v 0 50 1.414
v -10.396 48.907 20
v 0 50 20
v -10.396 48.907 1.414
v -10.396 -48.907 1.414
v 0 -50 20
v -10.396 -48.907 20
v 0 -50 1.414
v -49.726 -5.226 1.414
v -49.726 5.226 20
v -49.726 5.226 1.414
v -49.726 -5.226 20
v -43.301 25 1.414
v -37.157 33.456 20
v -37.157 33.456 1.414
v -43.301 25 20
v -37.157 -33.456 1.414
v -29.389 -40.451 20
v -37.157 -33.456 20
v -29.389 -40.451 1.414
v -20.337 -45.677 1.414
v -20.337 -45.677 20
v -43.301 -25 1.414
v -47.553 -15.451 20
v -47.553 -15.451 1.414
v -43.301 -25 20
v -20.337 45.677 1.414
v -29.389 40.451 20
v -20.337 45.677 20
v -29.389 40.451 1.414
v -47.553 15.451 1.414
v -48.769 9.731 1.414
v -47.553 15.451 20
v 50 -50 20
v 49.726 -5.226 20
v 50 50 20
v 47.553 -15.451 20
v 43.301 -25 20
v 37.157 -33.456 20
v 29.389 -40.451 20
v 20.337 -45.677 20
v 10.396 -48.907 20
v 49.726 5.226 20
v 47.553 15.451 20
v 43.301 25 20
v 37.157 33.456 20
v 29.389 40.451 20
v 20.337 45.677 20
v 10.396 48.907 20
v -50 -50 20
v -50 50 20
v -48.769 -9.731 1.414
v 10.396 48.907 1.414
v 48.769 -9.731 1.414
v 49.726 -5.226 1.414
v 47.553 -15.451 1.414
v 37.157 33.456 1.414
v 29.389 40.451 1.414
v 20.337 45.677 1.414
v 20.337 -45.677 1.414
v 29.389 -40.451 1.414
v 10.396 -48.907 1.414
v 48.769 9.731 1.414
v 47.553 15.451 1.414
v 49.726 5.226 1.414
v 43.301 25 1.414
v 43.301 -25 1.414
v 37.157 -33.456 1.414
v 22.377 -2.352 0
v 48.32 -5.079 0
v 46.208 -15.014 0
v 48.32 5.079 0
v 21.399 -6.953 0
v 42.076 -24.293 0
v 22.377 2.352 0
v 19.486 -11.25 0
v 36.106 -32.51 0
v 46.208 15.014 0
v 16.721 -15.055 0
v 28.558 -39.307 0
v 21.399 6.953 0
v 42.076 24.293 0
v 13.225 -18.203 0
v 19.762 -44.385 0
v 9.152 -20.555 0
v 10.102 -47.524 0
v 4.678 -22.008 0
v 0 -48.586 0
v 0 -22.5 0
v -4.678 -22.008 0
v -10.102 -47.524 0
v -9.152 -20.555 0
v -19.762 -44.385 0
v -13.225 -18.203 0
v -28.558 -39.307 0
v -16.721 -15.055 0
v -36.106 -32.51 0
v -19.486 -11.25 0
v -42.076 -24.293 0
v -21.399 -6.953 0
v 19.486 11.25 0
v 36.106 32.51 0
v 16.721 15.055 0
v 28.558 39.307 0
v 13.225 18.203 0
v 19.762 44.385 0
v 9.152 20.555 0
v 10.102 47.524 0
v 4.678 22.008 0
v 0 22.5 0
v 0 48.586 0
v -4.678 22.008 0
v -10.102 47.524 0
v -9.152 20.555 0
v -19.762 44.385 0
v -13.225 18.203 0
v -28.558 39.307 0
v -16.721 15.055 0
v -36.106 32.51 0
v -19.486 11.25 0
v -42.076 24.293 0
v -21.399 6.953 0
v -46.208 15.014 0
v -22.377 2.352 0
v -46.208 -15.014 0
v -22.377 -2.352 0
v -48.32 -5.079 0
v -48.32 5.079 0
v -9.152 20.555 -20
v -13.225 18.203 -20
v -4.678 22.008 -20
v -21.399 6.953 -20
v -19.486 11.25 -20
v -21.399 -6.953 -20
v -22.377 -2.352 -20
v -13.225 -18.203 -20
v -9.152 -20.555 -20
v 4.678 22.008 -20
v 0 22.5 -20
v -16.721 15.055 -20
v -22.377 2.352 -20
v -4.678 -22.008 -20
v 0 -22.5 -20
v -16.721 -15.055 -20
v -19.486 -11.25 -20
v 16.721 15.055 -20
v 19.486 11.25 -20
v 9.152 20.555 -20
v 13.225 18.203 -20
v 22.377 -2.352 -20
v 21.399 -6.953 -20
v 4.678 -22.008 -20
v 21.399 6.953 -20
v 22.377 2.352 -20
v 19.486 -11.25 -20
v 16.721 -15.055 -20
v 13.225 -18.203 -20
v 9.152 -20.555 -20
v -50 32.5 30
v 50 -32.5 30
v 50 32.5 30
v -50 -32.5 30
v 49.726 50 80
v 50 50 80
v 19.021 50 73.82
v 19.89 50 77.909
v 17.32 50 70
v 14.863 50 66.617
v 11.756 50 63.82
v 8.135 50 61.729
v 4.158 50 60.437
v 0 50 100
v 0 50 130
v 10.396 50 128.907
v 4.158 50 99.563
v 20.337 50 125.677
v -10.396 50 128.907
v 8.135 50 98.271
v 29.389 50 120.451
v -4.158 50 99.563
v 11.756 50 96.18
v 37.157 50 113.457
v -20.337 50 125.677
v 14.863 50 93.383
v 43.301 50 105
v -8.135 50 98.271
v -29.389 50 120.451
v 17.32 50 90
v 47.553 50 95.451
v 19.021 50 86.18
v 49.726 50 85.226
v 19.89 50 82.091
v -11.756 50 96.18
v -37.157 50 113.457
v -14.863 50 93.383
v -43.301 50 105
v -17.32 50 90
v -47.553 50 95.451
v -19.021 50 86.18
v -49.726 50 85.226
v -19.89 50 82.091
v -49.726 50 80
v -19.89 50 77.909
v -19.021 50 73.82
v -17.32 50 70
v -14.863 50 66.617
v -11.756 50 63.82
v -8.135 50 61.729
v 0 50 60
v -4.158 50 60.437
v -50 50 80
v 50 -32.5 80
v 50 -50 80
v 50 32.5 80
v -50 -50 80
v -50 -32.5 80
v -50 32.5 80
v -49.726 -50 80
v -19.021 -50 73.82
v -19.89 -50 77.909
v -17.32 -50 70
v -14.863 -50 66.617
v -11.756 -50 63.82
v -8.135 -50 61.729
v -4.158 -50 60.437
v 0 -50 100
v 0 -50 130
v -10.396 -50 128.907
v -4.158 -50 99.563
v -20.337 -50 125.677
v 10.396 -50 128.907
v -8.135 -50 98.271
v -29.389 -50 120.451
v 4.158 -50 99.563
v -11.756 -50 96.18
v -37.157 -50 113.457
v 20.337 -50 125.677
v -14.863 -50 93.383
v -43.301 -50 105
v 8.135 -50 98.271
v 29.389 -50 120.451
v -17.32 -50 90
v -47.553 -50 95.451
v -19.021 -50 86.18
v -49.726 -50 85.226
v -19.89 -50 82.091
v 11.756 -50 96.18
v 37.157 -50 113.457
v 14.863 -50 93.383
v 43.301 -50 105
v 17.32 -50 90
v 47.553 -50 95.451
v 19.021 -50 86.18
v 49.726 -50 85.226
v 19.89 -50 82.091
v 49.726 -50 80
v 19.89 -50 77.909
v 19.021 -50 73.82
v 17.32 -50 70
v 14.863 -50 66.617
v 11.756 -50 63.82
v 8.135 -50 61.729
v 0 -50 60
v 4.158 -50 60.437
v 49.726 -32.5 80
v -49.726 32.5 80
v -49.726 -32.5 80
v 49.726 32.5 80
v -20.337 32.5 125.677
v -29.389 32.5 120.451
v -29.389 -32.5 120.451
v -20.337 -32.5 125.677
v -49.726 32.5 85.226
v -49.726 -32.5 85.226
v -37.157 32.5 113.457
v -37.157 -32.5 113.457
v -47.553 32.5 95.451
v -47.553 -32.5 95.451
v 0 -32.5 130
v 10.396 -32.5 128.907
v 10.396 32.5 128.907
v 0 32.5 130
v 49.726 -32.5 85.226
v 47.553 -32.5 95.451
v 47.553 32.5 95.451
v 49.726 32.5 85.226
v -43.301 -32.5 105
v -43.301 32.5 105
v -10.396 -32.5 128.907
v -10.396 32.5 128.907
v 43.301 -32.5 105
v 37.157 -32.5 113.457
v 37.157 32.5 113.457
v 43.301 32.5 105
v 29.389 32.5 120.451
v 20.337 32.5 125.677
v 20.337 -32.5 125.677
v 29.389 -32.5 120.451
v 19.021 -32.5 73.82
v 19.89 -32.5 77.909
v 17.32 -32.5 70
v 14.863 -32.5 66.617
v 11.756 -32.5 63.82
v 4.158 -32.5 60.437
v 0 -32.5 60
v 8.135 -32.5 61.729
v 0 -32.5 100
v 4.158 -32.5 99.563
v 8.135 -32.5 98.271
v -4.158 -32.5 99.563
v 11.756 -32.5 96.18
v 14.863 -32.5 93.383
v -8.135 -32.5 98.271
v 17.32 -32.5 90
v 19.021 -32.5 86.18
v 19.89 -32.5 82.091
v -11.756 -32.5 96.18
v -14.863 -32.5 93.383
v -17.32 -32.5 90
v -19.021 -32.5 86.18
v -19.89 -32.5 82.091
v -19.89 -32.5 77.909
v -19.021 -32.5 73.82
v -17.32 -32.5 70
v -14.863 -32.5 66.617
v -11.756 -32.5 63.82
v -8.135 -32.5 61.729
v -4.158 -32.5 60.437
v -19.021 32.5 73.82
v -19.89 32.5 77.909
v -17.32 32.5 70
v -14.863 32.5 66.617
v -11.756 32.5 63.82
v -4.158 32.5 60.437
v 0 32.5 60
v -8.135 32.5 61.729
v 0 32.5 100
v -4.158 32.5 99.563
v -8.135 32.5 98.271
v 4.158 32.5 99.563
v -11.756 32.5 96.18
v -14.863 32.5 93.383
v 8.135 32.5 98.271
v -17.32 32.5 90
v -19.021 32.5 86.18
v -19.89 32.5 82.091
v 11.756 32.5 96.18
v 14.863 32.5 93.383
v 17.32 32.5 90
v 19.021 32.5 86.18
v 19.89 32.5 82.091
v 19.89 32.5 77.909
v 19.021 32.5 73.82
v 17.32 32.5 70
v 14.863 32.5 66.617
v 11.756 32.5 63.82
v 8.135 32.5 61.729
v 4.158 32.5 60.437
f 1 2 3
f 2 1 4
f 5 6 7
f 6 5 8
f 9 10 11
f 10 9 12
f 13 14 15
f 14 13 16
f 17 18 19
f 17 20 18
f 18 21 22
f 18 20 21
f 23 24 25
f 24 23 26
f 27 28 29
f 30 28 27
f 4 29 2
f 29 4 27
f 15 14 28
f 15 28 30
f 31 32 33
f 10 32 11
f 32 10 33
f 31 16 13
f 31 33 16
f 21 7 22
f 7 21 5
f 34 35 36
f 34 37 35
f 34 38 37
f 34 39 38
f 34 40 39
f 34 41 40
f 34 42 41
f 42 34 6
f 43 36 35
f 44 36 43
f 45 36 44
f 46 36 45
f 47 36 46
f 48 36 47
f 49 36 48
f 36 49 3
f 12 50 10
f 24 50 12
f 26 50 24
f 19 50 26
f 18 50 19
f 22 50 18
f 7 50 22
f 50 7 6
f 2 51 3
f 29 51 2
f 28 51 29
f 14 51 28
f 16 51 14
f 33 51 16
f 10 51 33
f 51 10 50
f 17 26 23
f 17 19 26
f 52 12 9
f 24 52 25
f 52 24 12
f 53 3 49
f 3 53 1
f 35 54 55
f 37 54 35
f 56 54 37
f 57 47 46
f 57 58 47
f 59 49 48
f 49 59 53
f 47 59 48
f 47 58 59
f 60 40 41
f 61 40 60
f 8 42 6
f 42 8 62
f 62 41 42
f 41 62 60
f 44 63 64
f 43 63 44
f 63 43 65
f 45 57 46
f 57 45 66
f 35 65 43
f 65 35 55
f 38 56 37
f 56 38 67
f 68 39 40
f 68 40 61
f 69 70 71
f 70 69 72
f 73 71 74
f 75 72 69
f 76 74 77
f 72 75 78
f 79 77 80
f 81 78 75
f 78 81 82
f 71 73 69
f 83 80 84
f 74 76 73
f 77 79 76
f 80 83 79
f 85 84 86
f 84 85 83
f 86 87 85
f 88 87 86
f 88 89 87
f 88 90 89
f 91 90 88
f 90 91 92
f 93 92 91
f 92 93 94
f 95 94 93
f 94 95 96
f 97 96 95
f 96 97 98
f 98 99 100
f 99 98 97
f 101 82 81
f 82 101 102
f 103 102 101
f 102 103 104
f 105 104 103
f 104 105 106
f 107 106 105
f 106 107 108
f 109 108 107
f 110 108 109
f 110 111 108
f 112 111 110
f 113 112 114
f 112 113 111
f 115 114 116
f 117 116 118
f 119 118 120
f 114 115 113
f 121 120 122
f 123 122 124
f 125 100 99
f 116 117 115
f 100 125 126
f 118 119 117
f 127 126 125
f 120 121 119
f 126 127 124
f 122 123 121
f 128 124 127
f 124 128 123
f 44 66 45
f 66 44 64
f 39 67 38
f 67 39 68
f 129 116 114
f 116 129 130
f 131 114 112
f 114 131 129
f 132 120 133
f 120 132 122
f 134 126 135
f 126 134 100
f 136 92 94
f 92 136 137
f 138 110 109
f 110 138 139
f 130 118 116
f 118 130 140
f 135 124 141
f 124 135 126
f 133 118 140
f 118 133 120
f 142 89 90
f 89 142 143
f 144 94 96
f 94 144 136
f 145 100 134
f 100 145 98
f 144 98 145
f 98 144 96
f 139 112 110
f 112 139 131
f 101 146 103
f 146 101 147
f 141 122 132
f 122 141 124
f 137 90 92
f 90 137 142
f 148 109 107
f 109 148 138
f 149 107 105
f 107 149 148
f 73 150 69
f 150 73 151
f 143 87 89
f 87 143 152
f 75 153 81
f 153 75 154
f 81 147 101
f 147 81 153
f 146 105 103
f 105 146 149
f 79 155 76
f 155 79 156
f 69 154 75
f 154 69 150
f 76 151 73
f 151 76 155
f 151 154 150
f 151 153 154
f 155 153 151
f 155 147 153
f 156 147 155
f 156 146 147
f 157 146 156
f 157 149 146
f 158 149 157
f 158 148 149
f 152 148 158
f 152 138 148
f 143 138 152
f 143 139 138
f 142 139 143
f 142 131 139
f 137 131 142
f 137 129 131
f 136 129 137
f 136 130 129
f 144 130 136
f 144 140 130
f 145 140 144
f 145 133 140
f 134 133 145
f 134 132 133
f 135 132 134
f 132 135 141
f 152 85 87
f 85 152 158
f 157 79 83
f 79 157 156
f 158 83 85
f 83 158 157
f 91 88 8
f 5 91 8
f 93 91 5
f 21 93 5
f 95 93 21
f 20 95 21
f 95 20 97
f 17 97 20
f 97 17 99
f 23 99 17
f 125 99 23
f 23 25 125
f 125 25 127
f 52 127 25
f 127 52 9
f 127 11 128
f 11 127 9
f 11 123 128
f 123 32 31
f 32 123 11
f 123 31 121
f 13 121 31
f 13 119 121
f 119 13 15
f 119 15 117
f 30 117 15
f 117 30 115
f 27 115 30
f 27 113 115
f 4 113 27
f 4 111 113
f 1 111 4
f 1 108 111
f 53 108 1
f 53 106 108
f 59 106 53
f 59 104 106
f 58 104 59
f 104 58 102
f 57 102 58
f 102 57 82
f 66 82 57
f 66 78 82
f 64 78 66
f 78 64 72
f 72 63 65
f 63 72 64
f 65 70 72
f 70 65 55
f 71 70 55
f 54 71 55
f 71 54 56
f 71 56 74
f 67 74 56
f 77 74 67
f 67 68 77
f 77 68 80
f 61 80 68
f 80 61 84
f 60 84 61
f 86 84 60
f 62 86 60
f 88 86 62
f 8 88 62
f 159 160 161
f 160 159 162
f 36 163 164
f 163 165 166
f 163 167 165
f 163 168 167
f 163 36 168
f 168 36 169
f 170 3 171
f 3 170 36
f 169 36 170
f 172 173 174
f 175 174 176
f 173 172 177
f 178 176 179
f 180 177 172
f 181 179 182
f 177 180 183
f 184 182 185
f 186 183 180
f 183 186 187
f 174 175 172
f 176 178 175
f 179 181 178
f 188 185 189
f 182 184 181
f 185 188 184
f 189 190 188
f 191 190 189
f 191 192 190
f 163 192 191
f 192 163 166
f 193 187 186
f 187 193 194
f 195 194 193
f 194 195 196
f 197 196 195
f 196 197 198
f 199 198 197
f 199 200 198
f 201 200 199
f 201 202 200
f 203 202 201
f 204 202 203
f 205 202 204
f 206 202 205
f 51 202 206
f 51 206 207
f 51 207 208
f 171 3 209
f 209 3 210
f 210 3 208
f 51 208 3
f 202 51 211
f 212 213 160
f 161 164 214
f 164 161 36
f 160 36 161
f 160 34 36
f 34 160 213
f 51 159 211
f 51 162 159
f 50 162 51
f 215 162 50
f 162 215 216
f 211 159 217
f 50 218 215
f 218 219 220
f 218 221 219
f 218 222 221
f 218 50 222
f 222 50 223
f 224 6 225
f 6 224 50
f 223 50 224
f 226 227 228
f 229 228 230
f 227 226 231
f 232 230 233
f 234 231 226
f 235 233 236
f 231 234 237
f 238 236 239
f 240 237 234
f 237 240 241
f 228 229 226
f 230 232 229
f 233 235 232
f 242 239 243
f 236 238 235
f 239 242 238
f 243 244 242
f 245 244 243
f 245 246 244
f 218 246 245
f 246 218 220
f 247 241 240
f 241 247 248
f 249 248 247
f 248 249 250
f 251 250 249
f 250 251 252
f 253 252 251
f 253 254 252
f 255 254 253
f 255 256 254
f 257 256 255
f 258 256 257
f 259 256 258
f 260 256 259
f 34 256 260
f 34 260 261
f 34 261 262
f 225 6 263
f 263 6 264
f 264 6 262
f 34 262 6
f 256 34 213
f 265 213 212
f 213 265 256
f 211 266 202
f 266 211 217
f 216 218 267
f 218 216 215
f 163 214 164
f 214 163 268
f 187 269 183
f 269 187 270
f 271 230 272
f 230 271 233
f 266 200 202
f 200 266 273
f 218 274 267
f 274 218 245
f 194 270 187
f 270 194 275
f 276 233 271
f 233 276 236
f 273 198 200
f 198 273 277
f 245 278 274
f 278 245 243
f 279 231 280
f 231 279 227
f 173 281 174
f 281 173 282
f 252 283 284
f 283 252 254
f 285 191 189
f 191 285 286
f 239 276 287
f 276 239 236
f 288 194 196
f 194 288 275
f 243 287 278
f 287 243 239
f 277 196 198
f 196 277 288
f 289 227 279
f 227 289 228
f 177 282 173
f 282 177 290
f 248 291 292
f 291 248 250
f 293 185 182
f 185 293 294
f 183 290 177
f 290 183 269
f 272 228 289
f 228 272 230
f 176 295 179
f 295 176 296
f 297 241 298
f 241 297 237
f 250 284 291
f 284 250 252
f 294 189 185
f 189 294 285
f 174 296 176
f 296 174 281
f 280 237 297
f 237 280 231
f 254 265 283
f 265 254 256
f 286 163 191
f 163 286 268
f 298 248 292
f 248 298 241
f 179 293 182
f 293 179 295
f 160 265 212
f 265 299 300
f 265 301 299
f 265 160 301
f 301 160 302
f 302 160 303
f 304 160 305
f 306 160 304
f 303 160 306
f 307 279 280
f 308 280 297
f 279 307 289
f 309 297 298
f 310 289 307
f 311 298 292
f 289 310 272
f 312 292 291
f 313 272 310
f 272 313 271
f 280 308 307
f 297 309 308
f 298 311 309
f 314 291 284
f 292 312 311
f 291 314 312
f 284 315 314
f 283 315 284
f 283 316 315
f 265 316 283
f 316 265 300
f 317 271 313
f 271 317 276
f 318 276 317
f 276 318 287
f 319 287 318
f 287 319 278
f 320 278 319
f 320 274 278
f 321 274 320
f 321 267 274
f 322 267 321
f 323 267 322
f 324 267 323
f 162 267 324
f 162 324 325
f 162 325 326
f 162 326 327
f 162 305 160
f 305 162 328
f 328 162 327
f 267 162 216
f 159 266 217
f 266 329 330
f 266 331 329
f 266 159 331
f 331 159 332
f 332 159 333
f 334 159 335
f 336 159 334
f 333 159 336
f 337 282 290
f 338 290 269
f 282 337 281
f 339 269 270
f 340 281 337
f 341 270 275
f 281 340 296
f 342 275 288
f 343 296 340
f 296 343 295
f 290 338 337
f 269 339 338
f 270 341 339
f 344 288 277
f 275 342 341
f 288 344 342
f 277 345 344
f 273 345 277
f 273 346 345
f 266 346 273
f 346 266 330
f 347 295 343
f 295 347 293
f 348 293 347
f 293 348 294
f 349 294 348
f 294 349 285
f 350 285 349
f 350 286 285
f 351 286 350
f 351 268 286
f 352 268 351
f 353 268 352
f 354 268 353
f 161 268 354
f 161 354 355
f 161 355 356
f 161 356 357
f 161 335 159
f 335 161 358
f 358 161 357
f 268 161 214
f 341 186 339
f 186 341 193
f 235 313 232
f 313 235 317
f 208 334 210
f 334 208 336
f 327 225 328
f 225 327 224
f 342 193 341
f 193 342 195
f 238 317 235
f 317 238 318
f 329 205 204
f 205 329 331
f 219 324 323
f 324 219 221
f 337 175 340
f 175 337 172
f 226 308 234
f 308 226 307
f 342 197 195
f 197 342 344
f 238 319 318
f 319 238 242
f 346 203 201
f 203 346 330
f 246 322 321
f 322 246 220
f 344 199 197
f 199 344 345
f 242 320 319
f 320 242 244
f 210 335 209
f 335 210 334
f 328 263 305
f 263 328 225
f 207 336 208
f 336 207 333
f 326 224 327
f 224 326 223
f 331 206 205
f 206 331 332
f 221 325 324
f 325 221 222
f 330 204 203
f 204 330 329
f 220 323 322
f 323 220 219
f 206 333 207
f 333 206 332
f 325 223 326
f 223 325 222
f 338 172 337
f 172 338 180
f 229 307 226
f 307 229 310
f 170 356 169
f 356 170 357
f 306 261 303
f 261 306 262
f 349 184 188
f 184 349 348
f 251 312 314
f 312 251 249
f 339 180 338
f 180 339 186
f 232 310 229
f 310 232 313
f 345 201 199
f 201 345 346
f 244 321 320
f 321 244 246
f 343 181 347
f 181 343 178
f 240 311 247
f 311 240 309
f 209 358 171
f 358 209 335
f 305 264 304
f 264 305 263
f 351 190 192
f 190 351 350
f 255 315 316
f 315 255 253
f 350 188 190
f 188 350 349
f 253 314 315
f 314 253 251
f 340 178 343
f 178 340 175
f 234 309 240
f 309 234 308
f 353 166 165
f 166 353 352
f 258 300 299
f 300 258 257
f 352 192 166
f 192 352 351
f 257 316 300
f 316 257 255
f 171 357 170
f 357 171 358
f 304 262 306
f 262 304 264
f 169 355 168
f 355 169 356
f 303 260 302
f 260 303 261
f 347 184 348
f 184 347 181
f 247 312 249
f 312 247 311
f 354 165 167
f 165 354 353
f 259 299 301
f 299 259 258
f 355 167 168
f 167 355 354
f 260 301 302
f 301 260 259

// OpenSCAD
// file: cube_link.scad
module cube_link(breadth= 10, depth= 10, length = 20, joint_clearance = 10){
    L = length;
    jc = joint_clearance;
    l = L - jc;
    r = ((l - L)/2) + jc;
    rotate([0, 90, 0]){
        union(){
            translate(v = [0, 0, jc/2]){
                cube([breadth, depth, l], center = true);
            }
            translate(v = [0, 0, -((l/2 - r) + jc/2)]){
                cube([0.6*breadth, depth, jc], center = true);
            }
        }
    }
}

/*
//  UNCOMMENT TO TEST MODULE
translate(v = [0, 0, 0])
cube_link(10, 10, 20, 5);
*/
// file: pin_joint_knuckle.scad
module pin_joint_knuckle(width, radius){
    diameter = 2*radius;
    union(){
        cylinder(1.1*width, 0.38*radius, 0.38*radius, center = true);
        cylinder(0.6*width, radius, radius, center = true);
        translate(v = [radius/2, 0, 0]){
            cube([radius, diameter, 0.6*width], center = true);
        }
    }
}

/*
UNCOMMENT TO TEST MODULE
pin_joint_knuckle(100, 100);
*/
// file: pin_joint_bearing.scad
module pin_joint_bearing(width, radius){
    difference(){
        difference(){
            union(){
                translate(v = [-radius/2, 0, 0]){
                    cube([radius, 2*radius, width], center = true);
                }
                cylinder(h = width, r = radius, center = true);
            }
            cube([2.2*radius, 2.2*radius, 0.65*width], center = true);
        }
        translate(v = [0, 0, 0]){
            cylinder(h = 1.1*width, r = 0.4*radius, center = true);
        }
    }
}

/*
UNCOMMENT TO TEST MODULE
pin_joint_bearing(100, 100);
*/
// file: swivel_joint_knuckle.scad
module swivel_joint_knuckle(height, radius, chamfer_size){
    difference(){
        union(){
            translate(v = [0, 0, height/2]){
                cylinder(h = height, r = radius, center = true);
            }
            translate(v = [0, 0, -height/2]){
                cylinder(h = height, r = 0.45*radius, center = true);
            }
        }
        
        cs = chamfer_size;
        
        rotate_extrude(convexity = 10){
            translate(v = [radius, 0 ,0]){
                rotate([0, 0, 45]){
                    square(size = [cs, cs], center = true);
                }
            }
        }
    }
}

/*
//  UNCOMMENT TO TEST MODULE
swivel_joint_knuckle(50, 100, 5);
*/
// file: swivel_joint_bearing.scad
module swivel_joint_bearing (height, radius, chamfer_size){
    difference(){
        difference(){
            cylinder(h = height, r = radius, center = true);
            cylinder(h = 1.1*height, r = 0.5*radius, center = true);
        }
        
        cs = chamfer_size;
        
        translate(v = [0, 0, height/2]){
            rotate_extrude(convexity = 10){
                translate(v = [radius, 0, 0]){
                    rotate([0, 0, 45]){
                        square(size = [cs, cs], center = true);
                    }
                }
            }
        }
    }
}

/*
// UNCOMMENT TO TEST THIS MODULE
swivel_joint_bearing(100, 100, 10);
*/
// main file
include <swivel_joint_bearing.scad>
include <swivel_joint_knuckle.scad>
include <pin_joint_bearing.scad>
include <pin_joint_knuckle.scad>
include <cube_link.scad>

module assembly_5(h_j4k = 20, r_j4k = 50, l_l4 = 10, w_j5b = 100, r_j5b = 50){
    rotate([90, -90, 0]){
        union(){
            //  joint 4 knuckle
            rotate([0, 90, 0]){
                swivel_joint_knuckle(h_j4k, r_j4k, 2);
            }
            //  link 4
            translate(v = [h_j4k + l_l4/2, 0, 0]){
                cube_link(2*r_j4k, 2*r_j4k, l_l4, 0);
            }
            //  joint 5 bearing
            translate(v = [h_j4k + l_l4 + r_j5b, 0, 0]){
                pin_joint_bearing(w_j5b, r_j5b);
            }
        }
    }
}
assembly_5();
